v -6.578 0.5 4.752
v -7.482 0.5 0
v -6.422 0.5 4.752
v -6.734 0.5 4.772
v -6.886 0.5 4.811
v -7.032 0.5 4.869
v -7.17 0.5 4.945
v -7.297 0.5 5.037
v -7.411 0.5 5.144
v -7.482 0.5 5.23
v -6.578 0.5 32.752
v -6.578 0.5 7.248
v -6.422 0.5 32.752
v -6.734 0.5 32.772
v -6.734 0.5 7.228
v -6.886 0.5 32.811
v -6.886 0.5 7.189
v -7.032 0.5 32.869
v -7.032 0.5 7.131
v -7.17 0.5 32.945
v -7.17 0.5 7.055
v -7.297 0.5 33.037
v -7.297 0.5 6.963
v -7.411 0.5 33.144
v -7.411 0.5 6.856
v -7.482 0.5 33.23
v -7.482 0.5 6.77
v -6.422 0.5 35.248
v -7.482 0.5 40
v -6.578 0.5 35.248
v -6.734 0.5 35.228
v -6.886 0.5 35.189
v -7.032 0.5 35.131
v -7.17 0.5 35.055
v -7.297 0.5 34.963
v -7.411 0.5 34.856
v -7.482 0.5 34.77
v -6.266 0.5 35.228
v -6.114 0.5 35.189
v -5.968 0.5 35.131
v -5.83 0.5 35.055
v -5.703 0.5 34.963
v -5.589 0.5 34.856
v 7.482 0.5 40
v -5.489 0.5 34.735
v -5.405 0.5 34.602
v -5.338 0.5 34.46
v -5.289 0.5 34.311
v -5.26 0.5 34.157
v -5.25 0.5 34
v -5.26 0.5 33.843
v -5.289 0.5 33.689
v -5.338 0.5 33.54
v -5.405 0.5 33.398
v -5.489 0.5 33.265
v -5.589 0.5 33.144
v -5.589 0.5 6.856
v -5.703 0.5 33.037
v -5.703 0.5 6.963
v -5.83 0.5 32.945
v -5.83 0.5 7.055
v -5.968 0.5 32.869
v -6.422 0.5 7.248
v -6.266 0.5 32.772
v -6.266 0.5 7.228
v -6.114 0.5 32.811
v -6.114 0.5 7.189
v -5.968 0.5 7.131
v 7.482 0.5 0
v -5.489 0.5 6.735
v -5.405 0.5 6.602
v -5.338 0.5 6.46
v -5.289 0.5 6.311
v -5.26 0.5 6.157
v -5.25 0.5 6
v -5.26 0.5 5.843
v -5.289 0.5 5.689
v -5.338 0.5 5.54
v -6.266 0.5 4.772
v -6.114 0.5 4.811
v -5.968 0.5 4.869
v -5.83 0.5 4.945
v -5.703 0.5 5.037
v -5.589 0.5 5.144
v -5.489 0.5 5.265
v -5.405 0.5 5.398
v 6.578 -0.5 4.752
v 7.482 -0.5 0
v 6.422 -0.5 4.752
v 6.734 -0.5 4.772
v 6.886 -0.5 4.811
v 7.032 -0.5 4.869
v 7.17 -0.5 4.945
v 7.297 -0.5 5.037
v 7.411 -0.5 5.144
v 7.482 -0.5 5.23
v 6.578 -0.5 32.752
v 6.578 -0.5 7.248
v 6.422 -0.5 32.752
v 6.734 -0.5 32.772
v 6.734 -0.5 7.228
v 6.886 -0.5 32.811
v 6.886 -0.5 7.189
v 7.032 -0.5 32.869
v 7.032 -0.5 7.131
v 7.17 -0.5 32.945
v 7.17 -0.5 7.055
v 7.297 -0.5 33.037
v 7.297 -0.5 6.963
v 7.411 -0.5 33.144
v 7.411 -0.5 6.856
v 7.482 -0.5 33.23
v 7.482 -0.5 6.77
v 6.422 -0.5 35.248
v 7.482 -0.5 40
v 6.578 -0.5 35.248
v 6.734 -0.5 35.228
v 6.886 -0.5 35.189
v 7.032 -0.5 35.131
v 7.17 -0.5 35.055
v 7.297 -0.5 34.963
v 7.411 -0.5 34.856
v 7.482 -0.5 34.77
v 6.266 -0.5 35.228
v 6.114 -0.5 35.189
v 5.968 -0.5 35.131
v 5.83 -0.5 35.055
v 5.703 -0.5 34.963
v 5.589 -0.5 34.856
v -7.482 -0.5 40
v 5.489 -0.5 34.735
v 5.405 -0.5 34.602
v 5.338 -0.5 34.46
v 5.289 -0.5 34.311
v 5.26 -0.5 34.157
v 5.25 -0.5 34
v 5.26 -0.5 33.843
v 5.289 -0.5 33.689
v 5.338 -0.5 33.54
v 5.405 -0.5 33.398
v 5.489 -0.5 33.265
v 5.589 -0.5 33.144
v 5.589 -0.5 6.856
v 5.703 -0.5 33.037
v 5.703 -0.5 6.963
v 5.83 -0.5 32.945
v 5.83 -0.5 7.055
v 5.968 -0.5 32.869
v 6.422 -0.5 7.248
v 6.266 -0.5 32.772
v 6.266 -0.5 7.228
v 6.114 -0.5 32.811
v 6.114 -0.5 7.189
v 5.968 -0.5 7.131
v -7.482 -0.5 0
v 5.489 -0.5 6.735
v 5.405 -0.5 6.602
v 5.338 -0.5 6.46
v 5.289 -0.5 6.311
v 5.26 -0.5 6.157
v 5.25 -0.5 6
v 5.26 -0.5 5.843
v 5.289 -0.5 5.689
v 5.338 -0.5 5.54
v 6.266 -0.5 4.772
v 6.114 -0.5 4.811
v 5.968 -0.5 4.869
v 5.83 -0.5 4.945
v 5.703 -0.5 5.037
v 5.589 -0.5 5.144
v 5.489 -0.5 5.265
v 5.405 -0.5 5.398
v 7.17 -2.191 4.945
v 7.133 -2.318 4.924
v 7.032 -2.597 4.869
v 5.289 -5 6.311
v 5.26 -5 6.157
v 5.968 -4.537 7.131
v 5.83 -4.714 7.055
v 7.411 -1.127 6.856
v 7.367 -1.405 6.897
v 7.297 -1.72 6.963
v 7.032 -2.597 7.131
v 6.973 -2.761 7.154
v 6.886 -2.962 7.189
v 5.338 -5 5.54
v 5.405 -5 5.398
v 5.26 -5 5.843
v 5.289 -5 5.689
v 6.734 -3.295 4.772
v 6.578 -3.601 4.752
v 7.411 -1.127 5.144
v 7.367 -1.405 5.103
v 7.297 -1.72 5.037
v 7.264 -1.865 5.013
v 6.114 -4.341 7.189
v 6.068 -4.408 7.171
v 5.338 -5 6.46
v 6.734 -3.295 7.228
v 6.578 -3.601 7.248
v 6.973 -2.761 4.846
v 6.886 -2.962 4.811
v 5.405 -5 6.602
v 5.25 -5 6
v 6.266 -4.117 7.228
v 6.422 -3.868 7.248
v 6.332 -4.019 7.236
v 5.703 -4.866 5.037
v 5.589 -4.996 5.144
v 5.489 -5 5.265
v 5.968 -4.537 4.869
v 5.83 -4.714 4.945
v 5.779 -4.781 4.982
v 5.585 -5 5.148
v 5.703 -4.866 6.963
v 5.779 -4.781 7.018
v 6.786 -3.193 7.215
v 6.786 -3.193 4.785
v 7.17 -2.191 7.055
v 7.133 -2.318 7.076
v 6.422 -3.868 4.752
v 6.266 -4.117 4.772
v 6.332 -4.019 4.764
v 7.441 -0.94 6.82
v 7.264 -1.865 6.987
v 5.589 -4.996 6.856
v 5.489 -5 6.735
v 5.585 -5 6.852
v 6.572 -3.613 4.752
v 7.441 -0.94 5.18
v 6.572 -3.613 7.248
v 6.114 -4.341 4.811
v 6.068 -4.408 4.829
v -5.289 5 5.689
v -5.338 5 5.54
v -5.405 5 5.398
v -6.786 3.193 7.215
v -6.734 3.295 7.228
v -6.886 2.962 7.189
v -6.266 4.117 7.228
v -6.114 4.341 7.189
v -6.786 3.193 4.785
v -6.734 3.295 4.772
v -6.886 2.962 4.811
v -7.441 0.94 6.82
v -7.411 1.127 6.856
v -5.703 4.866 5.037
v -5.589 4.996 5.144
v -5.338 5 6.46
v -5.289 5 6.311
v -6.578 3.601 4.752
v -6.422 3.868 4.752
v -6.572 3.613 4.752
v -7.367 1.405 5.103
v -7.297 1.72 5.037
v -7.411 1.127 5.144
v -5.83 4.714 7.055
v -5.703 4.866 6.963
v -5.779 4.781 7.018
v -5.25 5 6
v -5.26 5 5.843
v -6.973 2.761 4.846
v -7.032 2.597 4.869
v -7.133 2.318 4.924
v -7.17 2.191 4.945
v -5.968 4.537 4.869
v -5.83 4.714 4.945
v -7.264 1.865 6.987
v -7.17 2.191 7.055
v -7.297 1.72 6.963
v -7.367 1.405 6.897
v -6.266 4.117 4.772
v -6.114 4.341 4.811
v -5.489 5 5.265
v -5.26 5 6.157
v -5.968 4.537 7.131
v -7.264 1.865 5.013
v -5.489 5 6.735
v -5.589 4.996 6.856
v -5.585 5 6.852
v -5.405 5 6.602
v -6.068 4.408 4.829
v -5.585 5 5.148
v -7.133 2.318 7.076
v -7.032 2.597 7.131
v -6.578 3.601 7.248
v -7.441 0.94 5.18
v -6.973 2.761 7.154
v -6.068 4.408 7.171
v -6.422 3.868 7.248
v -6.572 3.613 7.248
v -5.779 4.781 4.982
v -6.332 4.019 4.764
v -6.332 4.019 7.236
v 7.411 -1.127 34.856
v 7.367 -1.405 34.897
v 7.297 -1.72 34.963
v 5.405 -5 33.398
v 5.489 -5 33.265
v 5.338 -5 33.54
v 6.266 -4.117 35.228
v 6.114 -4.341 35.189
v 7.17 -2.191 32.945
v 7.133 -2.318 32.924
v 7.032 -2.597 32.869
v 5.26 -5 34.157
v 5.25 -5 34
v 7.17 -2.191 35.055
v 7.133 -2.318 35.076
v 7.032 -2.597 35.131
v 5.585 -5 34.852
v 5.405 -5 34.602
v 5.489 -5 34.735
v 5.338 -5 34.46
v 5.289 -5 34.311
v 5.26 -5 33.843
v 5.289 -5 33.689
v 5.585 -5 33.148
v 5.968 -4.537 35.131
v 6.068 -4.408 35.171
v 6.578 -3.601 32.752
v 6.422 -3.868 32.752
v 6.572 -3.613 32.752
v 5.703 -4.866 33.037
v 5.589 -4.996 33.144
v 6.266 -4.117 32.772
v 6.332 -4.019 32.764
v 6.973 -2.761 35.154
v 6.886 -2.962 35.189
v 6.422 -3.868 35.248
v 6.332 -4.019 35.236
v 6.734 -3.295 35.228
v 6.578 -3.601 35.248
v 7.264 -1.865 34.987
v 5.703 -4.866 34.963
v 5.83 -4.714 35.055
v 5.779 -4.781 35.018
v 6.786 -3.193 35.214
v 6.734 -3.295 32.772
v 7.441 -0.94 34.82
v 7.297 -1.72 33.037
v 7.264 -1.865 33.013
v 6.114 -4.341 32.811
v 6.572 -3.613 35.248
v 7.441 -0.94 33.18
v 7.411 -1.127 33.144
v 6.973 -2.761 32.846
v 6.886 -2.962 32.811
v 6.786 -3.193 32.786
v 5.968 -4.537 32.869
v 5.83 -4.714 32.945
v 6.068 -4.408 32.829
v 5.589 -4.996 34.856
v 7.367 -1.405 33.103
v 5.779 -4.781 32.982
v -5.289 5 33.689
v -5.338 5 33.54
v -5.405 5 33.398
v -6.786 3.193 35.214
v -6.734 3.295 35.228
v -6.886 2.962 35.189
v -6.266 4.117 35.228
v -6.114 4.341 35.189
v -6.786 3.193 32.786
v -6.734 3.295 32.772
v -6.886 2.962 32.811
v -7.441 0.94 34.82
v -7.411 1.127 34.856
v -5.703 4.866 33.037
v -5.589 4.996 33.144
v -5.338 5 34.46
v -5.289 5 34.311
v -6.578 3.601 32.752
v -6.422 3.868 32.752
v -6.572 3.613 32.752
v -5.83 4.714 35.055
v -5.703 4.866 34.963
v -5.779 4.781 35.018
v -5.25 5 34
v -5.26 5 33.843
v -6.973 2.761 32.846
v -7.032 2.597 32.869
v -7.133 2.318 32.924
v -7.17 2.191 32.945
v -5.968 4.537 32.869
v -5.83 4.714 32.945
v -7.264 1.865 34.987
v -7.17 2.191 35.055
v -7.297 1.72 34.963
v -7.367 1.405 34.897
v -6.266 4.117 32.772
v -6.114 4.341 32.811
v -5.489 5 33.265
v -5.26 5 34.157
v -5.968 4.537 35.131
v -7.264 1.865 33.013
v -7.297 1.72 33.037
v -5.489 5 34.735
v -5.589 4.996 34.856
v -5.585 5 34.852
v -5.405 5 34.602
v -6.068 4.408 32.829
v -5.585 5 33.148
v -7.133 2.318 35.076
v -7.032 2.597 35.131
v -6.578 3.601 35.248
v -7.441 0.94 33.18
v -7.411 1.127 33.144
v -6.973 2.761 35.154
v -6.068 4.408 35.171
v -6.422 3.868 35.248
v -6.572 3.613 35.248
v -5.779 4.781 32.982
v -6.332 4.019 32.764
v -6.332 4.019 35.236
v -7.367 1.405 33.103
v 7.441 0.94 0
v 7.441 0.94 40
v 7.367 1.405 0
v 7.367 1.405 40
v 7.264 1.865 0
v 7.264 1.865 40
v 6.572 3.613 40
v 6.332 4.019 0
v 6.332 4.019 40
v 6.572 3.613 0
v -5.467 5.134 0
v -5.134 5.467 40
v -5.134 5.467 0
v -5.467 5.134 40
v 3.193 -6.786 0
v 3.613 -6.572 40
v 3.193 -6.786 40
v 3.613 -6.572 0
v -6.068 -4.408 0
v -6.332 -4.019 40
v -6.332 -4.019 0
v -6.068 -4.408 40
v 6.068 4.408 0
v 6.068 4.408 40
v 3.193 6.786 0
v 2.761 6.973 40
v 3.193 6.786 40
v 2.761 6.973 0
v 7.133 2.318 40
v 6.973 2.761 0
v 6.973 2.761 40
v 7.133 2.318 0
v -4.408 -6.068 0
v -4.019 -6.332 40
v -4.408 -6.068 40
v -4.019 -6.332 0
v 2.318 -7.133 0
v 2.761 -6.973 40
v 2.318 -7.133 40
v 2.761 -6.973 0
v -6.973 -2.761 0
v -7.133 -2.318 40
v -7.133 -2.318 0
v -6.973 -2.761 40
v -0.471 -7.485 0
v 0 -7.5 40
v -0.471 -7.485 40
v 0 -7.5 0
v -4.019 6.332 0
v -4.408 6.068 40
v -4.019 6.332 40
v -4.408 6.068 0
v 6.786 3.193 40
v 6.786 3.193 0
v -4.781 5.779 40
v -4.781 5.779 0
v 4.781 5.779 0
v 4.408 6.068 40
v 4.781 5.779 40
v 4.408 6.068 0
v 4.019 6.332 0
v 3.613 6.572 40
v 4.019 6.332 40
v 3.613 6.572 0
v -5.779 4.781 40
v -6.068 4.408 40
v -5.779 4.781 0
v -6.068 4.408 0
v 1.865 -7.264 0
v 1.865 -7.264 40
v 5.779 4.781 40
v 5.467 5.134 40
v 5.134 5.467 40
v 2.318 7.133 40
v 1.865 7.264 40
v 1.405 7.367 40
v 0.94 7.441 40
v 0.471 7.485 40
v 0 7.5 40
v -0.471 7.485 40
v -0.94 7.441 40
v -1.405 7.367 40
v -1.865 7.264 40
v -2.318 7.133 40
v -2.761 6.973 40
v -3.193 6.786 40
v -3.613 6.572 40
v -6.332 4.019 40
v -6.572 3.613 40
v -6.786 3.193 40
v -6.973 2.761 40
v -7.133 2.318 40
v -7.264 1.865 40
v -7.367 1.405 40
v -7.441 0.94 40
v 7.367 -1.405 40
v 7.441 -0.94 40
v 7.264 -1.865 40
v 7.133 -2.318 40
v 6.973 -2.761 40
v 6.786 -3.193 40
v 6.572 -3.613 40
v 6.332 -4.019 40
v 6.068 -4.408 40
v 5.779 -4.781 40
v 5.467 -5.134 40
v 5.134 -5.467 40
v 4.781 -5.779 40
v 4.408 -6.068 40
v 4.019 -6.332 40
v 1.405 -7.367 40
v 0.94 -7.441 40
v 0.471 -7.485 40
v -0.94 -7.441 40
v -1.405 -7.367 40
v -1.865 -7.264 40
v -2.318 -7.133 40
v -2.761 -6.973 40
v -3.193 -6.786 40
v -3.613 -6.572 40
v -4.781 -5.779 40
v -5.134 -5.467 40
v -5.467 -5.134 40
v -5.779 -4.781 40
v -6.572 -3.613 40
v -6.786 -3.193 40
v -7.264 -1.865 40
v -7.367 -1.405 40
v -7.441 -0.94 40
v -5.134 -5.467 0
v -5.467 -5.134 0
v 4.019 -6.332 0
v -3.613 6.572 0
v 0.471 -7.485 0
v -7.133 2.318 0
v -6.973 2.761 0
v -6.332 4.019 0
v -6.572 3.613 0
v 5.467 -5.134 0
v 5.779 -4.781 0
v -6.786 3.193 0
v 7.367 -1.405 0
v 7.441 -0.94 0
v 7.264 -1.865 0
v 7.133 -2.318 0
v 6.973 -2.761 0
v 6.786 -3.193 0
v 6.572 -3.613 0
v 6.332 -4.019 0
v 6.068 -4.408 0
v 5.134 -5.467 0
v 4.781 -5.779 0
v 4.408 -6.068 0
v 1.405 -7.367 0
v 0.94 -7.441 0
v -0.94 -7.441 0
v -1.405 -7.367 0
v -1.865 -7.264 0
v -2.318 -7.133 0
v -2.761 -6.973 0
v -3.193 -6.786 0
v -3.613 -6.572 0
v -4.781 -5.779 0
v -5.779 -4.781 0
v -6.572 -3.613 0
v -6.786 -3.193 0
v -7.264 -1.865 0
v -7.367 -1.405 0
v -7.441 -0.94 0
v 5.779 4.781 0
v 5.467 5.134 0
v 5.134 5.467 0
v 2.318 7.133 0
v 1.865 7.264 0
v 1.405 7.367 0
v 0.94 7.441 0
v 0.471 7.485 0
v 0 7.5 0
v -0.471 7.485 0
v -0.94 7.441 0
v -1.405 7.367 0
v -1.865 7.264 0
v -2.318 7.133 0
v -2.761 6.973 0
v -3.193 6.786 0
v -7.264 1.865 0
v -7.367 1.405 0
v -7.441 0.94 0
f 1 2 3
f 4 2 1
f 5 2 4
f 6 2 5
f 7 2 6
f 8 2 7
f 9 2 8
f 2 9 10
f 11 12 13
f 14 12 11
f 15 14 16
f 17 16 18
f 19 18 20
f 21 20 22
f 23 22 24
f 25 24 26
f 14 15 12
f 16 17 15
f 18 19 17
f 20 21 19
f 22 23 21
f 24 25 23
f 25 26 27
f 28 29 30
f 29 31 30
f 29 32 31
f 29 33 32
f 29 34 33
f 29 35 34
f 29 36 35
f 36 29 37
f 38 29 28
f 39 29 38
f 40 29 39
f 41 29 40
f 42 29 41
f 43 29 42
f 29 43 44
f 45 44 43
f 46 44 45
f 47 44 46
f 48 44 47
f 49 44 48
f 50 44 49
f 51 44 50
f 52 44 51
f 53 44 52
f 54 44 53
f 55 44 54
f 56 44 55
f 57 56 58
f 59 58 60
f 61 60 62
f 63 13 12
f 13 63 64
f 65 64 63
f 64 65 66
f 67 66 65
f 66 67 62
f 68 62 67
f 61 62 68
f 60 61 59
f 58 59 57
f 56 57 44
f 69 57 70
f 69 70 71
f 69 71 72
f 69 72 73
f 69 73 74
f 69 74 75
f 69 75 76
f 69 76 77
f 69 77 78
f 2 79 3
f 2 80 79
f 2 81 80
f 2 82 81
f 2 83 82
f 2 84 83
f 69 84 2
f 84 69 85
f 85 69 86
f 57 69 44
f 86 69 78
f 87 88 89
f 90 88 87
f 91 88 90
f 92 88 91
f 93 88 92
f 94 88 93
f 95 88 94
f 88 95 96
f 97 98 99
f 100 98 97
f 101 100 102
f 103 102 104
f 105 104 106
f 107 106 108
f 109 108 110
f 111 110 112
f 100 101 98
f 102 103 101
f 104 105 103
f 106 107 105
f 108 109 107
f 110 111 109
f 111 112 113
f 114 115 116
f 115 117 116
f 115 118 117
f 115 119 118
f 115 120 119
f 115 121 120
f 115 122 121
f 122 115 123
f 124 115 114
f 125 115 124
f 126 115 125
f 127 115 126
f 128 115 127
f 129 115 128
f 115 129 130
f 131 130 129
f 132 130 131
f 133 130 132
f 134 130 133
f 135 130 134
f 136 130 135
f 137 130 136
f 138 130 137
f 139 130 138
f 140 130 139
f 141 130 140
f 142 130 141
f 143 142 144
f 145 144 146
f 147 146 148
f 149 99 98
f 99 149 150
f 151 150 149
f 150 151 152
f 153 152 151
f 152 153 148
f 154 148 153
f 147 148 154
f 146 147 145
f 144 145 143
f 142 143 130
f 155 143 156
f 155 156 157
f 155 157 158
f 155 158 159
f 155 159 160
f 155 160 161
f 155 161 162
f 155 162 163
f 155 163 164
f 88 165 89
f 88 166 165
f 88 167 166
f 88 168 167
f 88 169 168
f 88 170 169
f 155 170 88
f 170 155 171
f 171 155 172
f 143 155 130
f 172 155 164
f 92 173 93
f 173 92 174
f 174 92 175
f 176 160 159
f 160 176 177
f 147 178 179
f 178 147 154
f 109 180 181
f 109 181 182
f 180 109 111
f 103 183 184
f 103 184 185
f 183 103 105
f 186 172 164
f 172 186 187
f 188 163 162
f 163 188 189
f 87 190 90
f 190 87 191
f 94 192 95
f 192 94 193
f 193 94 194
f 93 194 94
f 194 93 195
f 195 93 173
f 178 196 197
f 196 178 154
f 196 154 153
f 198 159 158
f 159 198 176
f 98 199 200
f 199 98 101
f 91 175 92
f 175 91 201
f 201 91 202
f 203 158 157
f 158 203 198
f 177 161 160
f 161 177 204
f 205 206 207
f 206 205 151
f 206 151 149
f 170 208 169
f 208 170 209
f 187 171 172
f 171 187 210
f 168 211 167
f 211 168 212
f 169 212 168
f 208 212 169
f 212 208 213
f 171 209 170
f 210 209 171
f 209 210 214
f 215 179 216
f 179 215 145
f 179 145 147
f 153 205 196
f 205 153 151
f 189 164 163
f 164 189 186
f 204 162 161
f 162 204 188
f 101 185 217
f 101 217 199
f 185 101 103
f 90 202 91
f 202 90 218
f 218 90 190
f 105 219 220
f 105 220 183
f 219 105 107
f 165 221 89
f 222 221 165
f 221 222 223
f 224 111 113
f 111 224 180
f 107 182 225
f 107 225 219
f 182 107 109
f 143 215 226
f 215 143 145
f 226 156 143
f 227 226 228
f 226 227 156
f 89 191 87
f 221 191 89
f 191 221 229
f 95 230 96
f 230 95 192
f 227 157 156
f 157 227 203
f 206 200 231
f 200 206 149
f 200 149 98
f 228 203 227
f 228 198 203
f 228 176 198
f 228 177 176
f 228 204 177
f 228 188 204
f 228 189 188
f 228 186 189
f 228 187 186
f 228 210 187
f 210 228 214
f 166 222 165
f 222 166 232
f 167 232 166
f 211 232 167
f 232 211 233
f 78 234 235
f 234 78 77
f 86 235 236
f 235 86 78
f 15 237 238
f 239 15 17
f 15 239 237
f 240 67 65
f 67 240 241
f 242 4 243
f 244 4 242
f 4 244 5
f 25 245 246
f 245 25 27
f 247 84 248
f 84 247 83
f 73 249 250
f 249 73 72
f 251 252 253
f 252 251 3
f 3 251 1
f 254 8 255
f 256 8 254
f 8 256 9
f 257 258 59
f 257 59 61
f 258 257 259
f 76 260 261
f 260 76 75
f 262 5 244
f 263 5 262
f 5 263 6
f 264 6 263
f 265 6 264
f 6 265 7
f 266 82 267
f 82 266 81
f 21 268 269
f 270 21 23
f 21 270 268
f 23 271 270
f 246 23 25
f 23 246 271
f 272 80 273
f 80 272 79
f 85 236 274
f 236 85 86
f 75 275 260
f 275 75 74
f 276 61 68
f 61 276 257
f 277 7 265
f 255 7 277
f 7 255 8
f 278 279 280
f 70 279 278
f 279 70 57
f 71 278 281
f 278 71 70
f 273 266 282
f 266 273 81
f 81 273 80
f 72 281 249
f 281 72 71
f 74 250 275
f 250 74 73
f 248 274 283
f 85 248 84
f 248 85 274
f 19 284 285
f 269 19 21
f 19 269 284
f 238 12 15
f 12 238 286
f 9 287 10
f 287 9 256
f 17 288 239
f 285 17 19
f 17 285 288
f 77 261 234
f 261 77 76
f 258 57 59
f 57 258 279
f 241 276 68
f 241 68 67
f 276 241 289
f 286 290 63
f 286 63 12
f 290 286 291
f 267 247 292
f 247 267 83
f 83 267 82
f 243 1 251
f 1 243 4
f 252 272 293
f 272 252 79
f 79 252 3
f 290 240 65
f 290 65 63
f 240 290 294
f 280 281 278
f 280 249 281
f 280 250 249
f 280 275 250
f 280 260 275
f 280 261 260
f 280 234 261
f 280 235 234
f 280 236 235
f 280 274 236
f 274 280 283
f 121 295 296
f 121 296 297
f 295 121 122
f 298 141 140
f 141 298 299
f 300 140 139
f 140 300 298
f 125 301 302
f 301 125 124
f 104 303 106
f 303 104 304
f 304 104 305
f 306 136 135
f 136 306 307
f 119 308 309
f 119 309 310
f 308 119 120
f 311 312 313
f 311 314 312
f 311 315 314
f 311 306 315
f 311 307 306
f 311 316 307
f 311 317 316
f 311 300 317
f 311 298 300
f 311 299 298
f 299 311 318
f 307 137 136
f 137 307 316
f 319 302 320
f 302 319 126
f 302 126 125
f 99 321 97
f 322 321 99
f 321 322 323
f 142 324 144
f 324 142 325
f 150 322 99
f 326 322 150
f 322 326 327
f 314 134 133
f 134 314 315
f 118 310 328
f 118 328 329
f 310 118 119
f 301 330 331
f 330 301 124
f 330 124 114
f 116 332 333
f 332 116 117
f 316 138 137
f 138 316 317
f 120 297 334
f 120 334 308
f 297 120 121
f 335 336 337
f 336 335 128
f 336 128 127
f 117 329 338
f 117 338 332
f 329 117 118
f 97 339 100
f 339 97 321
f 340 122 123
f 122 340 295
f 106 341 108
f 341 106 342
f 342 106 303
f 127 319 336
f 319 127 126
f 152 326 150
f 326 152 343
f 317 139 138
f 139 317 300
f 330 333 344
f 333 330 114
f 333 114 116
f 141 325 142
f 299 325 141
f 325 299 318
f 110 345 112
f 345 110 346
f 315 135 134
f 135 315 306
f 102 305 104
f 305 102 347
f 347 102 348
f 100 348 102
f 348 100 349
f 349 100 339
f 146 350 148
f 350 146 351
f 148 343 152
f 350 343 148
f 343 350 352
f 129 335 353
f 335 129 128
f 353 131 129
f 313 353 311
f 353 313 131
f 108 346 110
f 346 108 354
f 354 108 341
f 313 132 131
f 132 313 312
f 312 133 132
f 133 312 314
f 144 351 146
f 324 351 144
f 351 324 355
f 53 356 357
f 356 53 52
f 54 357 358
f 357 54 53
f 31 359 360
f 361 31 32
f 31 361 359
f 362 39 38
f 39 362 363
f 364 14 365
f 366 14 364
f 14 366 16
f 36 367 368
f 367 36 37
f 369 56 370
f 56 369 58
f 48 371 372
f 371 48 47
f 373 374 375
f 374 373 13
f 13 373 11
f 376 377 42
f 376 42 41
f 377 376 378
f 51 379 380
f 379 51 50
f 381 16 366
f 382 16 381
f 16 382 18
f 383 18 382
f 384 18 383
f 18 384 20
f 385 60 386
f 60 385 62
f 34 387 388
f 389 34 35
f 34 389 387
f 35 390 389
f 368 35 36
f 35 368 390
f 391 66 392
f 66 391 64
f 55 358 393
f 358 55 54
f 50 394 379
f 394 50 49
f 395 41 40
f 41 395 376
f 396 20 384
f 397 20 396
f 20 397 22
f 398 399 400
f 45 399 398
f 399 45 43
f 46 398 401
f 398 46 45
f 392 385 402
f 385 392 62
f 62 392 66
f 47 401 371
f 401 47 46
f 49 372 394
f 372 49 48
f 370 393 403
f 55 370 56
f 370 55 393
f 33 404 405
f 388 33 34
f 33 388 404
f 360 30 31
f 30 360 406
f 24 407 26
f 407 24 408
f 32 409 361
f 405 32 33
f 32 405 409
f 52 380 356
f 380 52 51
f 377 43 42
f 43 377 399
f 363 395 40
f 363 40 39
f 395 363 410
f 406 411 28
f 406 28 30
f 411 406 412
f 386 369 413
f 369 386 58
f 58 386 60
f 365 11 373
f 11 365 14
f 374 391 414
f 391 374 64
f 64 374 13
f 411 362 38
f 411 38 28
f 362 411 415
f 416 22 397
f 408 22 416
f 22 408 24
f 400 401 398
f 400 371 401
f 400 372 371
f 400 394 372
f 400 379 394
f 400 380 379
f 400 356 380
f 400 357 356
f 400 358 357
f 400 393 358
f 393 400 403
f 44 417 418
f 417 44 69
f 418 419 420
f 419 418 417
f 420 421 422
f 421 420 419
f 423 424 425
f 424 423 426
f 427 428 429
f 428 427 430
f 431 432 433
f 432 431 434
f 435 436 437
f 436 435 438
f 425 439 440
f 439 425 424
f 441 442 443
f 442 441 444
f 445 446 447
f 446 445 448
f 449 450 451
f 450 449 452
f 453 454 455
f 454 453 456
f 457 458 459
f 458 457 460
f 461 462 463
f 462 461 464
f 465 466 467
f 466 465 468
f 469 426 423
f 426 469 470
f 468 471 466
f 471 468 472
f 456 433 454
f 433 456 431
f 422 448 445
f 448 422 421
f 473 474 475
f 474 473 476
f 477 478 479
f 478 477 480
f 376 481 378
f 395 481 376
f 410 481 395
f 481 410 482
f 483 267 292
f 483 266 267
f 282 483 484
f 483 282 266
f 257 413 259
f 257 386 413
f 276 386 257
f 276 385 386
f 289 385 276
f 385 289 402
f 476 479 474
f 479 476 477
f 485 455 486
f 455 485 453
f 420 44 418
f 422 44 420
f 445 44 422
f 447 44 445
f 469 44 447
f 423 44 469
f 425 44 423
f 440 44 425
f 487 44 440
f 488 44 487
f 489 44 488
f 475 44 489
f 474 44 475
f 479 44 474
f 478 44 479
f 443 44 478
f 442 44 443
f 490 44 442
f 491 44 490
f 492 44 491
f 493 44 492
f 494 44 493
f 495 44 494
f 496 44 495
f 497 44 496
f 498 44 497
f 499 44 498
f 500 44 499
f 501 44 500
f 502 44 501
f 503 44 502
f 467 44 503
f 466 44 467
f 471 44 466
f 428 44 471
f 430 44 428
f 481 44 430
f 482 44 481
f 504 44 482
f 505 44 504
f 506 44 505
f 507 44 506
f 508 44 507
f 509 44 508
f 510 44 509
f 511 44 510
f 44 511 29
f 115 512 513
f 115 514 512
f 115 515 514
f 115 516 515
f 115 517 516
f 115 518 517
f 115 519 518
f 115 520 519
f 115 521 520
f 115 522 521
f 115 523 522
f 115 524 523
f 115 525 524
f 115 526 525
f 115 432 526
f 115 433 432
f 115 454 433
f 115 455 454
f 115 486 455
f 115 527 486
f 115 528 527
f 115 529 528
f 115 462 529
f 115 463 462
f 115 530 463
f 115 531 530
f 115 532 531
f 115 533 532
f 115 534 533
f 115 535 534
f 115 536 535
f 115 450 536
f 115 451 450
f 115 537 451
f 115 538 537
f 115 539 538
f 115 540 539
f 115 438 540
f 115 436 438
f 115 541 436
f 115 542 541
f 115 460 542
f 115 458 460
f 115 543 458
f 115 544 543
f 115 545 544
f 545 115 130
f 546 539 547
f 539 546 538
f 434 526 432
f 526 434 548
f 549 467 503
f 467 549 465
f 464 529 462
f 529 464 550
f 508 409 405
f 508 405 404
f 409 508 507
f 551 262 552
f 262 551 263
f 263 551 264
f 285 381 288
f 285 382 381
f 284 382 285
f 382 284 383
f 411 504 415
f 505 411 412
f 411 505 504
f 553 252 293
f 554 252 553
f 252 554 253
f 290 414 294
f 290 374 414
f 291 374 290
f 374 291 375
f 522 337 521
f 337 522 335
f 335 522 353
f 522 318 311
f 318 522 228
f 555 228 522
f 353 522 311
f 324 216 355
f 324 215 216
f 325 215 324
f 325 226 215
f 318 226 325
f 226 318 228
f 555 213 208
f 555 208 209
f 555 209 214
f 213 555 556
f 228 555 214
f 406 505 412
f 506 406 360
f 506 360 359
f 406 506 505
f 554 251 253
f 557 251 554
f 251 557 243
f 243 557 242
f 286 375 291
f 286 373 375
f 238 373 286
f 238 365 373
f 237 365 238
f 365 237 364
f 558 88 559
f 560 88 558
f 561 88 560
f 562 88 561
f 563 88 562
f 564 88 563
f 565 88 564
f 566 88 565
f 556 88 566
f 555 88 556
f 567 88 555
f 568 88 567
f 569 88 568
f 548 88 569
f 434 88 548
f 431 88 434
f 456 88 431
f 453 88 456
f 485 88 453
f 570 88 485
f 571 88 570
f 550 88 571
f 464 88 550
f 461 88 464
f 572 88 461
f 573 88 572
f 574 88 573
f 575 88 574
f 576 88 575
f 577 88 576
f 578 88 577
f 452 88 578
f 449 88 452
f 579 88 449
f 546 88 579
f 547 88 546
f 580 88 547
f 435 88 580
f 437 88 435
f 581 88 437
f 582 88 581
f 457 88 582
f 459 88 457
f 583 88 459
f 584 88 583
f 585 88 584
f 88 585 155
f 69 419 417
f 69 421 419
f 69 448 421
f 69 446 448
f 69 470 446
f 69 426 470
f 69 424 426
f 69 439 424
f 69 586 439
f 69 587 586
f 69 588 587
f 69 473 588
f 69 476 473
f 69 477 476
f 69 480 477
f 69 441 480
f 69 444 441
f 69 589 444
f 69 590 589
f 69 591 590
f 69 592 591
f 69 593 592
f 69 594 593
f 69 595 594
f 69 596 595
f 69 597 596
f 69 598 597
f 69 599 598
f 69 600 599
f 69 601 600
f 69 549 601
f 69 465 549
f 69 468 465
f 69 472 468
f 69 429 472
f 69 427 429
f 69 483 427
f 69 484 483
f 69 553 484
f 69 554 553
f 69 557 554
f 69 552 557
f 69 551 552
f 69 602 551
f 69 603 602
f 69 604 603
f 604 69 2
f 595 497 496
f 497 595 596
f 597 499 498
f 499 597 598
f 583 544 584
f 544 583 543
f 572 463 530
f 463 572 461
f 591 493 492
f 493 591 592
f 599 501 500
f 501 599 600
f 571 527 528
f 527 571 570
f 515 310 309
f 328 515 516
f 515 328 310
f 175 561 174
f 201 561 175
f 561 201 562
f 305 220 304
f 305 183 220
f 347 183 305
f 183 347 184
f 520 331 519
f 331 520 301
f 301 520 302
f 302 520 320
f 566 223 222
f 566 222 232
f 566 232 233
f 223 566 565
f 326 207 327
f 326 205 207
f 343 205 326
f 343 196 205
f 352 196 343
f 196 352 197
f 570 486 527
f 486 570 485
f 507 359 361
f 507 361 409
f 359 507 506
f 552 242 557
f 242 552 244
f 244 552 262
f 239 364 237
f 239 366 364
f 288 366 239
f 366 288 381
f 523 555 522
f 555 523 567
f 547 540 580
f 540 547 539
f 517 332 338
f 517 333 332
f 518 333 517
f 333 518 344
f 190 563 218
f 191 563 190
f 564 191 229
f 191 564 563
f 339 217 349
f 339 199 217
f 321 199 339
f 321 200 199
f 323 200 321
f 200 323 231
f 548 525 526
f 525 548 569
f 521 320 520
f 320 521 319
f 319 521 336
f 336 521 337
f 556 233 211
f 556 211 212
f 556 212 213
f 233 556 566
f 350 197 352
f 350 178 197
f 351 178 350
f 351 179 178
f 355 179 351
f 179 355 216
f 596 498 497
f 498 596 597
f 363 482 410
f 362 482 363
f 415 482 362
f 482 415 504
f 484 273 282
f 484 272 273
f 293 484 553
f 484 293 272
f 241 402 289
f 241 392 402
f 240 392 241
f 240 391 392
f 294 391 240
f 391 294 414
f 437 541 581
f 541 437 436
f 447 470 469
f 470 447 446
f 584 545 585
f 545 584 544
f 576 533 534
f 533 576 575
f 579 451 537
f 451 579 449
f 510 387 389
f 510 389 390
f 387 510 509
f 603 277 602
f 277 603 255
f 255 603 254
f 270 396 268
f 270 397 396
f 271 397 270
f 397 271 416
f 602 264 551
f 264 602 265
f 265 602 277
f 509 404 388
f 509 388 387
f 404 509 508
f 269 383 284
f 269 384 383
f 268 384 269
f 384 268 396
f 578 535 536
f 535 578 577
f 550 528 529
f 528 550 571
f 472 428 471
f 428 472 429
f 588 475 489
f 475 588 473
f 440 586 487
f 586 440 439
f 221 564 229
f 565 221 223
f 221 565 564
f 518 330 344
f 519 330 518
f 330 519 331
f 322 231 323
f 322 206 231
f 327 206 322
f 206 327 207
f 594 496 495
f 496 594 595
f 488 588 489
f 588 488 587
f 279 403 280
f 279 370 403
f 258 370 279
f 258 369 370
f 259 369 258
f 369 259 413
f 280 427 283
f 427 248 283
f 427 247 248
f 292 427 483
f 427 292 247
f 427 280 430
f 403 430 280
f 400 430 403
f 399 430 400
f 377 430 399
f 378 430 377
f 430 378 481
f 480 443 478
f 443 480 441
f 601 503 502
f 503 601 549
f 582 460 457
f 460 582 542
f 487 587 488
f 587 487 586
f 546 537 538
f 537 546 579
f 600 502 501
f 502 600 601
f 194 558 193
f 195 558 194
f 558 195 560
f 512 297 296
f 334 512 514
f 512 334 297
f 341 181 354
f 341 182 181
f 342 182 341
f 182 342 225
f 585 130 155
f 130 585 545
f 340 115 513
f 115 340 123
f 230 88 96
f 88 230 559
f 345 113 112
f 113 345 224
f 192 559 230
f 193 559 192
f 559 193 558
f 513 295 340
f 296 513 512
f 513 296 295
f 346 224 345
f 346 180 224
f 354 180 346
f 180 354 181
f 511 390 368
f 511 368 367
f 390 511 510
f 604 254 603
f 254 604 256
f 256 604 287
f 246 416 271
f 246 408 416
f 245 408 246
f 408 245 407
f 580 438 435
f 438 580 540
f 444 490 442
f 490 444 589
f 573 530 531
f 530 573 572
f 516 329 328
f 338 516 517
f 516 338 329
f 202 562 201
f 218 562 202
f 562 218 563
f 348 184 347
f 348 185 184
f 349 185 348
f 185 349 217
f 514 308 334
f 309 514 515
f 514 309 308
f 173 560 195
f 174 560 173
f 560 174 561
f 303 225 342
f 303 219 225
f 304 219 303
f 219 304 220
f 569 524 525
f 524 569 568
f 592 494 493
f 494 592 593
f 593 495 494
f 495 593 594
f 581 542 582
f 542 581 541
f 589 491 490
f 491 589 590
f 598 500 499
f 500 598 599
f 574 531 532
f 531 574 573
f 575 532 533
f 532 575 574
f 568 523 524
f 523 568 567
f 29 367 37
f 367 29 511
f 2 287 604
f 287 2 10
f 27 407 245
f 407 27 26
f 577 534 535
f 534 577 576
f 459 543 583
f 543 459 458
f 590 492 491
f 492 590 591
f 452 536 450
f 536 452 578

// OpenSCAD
// Parameters
coupling_length = 40;
coupling_diameter = 15;
slot_width = 1;
slot_depth = 5;
slot_spacing = 6;
num_slots = 4;
screw_hole_diameter = 2.5;
screw_hole_offset = 6;

// Main body
difference() {
    // Base cylinder
    cylinder(h = coupling_length, d = coupling_diameter, $fn = 100);

    // Axial slots
    for (i = [0 : num_slots - 1]) {
        translate([0, 0, i * slot_spacing + 2])
            rotate([0, 0, 0])
                cube([coupling_diameter, slot_width, slot_depth], center = true);
    }

    // Screw holes (2 on each end)
    for (z = [screw_hole_offset, coupling_length - screw_hole_offset]) {
        for (angle = [0, 180]) {
            rotate([0, 0, angle])
                translate([coupling_diameter / 2 - 1, 0, z])
                    rotate([90, 0, 0])
                        cylinder(h = 5, d = screw_hole_diameter, $fn = 50);
        }
    }

    // Shaft clamping slit (through the center)
    translate([-coupling_diameter / 2, -0.5, 0])
        cube([coupling_diameter, 1, coupling_length]);
}
